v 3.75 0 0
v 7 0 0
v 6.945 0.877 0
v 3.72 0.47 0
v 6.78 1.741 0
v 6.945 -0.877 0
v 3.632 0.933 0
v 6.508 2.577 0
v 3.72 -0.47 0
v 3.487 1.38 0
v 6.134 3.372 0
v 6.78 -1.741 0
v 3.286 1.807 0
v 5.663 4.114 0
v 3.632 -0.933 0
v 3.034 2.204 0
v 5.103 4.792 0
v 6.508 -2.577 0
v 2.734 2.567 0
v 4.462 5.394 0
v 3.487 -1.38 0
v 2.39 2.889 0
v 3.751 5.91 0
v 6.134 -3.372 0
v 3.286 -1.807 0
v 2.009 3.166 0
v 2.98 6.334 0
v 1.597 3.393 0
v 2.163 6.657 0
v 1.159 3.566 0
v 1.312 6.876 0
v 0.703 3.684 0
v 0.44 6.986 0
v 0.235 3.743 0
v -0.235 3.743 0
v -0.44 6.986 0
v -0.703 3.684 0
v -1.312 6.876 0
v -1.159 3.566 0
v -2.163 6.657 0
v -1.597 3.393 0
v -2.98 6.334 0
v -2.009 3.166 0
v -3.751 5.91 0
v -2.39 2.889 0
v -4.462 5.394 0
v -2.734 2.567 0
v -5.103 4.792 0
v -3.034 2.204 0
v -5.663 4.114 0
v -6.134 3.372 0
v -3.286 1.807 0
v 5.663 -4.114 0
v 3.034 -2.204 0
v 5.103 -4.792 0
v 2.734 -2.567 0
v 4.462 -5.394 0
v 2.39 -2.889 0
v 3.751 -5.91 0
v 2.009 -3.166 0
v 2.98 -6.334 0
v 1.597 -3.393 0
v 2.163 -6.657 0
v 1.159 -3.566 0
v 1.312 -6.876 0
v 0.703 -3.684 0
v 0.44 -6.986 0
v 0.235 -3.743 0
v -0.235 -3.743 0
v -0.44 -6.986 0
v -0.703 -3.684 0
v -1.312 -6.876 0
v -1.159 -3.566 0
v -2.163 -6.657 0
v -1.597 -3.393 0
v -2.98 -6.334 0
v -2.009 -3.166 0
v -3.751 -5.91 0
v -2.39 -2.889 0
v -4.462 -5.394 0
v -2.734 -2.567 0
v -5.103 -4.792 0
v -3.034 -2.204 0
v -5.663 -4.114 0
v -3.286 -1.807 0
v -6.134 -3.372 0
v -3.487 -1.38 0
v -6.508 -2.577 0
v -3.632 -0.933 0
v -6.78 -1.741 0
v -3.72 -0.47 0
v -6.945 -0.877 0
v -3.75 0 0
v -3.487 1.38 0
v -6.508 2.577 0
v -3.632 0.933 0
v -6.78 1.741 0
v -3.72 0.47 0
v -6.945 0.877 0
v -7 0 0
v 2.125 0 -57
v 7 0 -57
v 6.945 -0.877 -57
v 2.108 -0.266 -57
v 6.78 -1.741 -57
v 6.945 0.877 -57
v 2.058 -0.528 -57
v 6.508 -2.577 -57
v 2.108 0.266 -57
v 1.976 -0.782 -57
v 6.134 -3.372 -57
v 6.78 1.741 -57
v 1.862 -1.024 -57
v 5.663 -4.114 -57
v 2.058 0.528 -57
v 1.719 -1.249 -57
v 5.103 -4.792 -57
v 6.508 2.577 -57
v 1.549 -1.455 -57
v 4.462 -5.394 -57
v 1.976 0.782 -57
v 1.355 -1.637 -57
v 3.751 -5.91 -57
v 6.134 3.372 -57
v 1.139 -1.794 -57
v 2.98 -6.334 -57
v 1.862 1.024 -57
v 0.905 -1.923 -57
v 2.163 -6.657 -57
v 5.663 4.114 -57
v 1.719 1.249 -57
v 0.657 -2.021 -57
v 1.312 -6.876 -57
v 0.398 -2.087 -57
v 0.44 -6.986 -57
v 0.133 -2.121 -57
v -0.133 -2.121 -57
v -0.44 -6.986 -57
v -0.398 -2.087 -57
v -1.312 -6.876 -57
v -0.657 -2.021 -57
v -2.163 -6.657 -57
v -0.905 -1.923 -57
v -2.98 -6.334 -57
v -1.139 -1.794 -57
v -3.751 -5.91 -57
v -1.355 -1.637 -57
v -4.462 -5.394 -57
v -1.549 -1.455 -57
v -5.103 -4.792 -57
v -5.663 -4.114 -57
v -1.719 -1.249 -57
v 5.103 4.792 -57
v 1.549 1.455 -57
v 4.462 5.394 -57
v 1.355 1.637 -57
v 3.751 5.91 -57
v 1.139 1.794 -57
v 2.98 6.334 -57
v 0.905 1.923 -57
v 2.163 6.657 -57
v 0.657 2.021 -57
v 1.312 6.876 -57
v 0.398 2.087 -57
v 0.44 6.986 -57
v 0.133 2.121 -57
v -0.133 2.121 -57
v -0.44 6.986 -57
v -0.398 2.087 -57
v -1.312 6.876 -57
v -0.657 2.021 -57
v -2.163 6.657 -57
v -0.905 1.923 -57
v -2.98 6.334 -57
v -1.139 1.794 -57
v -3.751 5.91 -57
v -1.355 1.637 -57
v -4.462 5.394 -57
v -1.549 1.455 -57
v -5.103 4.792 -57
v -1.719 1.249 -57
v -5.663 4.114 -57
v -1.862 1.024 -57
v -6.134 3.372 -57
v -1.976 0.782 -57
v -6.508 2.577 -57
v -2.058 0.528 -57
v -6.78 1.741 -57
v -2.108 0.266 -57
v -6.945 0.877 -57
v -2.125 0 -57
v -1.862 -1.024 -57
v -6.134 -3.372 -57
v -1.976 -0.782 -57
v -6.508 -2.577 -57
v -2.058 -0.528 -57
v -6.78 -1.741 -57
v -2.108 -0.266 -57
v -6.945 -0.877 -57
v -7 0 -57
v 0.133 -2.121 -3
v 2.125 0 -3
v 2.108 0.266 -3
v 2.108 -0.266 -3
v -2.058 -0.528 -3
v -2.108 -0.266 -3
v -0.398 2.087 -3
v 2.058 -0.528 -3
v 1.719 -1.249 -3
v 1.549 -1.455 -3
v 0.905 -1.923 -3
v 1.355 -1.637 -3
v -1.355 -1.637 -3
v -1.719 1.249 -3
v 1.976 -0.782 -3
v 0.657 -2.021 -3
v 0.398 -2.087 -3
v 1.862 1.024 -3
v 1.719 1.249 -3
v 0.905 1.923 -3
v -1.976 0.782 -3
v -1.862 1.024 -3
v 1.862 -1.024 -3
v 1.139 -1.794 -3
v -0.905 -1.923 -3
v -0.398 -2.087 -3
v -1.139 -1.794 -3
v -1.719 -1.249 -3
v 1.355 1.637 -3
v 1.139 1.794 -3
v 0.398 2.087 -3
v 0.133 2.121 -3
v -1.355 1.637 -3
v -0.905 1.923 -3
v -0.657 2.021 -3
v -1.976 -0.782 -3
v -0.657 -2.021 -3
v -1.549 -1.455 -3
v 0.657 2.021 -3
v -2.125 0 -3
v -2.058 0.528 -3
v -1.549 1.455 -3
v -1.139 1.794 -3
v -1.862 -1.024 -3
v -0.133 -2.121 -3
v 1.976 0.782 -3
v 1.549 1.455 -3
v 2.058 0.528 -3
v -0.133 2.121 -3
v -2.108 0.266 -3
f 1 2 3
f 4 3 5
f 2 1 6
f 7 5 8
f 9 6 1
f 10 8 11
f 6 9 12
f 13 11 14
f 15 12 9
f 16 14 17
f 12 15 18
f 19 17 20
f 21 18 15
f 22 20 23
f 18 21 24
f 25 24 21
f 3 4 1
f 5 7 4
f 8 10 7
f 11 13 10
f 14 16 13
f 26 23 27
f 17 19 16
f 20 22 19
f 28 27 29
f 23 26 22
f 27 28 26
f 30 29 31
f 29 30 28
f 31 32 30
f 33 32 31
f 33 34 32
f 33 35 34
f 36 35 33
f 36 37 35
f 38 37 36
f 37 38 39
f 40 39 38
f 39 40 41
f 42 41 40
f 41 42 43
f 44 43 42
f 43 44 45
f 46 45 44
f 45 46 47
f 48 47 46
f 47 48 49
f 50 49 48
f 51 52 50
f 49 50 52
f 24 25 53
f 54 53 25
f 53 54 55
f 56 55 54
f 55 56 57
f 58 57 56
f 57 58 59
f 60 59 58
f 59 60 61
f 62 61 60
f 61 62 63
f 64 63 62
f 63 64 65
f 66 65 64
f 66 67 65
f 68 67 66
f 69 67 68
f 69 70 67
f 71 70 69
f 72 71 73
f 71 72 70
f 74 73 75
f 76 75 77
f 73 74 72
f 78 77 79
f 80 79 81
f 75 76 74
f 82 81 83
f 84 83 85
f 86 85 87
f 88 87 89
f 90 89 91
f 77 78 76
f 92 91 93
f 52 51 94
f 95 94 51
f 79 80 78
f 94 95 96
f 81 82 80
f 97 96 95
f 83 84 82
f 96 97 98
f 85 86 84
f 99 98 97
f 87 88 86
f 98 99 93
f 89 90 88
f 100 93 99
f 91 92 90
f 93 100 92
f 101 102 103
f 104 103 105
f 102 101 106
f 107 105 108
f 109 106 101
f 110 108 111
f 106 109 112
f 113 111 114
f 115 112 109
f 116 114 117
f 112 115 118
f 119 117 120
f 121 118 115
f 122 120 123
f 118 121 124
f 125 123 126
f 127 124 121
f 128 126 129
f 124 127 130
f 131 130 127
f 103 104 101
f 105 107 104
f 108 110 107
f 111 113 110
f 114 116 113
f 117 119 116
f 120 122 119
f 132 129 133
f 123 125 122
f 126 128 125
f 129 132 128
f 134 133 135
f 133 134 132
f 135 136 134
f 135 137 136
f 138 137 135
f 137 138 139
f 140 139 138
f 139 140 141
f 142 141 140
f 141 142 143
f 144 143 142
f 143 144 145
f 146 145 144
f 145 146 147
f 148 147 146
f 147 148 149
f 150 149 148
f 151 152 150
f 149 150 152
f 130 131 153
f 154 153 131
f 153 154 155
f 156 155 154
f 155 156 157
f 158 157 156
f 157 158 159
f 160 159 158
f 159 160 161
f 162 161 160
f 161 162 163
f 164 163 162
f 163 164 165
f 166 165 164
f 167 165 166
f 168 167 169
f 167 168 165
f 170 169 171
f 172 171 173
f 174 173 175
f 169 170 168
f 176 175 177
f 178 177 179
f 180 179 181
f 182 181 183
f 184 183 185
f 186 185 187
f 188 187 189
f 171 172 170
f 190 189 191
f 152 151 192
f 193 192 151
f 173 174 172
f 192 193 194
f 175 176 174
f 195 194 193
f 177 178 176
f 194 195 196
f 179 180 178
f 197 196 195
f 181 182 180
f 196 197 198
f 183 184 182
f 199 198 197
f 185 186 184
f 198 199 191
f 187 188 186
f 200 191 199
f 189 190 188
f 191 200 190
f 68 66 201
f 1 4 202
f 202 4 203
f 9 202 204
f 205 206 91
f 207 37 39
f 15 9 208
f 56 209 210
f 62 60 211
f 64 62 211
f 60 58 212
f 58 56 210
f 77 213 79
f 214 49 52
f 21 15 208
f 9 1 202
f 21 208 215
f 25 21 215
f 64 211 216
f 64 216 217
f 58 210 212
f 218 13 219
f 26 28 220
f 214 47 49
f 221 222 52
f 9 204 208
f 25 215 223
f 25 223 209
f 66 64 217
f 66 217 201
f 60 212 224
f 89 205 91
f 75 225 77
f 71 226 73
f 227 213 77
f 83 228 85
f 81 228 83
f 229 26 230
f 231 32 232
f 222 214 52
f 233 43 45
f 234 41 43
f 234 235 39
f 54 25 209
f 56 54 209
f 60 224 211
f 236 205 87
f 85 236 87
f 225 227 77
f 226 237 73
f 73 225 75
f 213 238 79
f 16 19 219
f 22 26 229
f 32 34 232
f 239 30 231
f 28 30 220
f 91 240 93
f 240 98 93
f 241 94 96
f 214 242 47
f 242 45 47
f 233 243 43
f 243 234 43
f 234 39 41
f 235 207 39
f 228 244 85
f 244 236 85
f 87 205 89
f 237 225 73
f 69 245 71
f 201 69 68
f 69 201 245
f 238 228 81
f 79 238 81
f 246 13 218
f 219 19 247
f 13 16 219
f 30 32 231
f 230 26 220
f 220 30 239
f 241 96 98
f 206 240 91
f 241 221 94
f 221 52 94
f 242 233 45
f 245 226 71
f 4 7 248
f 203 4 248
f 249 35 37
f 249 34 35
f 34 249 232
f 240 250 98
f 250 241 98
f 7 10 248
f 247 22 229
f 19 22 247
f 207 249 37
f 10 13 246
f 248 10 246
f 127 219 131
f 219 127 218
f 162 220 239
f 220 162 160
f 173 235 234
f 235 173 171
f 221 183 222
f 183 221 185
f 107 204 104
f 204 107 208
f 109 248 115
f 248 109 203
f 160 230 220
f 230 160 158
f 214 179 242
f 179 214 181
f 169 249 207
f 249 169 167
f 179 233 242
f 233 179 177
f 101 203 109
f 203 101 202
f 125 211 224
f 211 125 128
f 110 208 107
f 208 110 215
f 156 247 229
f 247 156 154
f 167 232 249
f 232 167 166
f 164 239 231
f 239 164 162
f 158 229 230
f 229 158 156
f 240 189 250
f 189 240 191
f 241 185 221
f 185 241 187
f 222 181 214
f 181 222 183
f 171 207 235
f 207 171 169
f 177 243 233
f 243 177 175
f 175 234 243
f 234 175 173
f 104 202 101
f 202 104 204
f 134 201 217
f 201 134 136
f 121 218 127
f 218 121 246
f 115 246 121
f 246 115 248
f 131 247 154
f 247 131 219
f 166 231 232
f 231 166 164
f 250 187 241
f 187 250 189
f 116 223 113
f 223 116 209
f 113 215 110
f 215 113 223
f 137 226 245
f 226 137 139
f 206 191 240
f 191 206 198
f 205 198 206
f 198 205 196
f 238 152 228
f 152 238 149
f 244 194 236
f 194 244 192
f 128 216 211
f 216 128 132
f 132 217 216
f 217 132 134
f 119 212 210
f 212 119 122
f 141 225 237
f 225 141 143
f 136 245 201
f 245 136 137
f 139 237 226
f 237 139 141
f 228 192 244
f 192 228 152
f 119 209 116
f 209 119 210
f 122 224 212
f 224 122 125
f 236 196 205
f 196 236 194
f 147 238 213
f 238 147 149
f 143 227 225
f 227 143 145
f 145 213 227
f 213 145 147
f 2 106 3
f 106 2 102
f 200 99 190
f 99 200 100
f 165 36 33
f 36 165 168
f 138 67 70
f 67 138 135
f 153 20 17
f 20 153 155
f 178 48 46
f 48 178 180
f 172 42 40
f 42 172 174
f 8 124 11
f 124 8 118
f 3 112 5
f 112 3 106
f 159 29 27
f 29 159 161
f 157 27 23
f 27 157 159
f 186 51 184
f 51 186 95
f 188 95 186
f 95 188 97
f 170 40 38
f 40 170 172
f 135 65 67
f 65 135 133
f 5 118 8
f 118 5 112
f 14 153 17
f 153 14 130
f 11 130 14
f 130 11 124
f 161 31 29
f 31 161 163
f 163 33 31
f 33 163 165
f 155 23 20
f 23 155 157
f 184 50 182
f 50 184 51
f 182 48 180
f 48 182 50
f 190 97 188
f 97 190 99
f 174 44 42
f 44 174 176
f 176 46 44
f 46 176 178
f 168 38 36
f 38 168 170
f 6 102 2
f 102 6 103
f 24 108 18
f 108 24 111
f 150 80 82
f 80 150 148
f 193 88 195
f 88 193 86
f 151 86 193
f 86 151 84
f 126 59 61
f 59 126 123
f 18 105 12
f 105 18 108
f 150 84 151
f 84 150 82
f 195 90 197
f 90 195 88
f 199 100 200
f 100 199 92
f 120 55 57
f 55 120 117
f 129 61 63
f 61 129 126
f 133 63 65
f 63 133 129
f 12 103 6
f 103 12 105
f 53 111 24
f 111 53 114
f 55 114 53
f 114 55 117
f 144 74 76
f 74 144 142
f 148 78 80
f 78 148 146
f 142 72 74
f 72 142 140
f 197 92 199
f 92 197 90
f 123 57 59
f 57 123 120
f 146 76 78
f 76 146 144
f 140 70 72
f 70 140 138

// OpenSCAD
$fn = 50;


difference() {
	union() {
		translate(v = [0, 0, -57.0000000000]) {
			cylinder(h = 57, r = 7.0000000000);
		}
		cylinder(h = 0, r = 16.0000000000);
	}
	union() {
		translate(v = [0, 0, 0]) {
			rotate(a = [0, 0, 0]) {
				difference() {
					union() {
						#translate(v = [0, 0, -57.0000000000]) {
							cylinder(h = 57, r = 2.0000000000);
						}
						#translate(v = [0, 0, -3]) {
							cylinder(h = 3, r = 7.0000000000, r1 = 2.1250000000, r2 = 3.7500000000);
						}
						#translate(v = [0, 0, -57.0000000000]) {
							cylinder(h = 57, r = 2.1250000000);
						}
						#translate(v = [0, 0, -57.0000000000]) {
							cylinder(h = 57, r = 2.0000000000);
						}
					}
					union();
				}
			}
		}
	}
}
